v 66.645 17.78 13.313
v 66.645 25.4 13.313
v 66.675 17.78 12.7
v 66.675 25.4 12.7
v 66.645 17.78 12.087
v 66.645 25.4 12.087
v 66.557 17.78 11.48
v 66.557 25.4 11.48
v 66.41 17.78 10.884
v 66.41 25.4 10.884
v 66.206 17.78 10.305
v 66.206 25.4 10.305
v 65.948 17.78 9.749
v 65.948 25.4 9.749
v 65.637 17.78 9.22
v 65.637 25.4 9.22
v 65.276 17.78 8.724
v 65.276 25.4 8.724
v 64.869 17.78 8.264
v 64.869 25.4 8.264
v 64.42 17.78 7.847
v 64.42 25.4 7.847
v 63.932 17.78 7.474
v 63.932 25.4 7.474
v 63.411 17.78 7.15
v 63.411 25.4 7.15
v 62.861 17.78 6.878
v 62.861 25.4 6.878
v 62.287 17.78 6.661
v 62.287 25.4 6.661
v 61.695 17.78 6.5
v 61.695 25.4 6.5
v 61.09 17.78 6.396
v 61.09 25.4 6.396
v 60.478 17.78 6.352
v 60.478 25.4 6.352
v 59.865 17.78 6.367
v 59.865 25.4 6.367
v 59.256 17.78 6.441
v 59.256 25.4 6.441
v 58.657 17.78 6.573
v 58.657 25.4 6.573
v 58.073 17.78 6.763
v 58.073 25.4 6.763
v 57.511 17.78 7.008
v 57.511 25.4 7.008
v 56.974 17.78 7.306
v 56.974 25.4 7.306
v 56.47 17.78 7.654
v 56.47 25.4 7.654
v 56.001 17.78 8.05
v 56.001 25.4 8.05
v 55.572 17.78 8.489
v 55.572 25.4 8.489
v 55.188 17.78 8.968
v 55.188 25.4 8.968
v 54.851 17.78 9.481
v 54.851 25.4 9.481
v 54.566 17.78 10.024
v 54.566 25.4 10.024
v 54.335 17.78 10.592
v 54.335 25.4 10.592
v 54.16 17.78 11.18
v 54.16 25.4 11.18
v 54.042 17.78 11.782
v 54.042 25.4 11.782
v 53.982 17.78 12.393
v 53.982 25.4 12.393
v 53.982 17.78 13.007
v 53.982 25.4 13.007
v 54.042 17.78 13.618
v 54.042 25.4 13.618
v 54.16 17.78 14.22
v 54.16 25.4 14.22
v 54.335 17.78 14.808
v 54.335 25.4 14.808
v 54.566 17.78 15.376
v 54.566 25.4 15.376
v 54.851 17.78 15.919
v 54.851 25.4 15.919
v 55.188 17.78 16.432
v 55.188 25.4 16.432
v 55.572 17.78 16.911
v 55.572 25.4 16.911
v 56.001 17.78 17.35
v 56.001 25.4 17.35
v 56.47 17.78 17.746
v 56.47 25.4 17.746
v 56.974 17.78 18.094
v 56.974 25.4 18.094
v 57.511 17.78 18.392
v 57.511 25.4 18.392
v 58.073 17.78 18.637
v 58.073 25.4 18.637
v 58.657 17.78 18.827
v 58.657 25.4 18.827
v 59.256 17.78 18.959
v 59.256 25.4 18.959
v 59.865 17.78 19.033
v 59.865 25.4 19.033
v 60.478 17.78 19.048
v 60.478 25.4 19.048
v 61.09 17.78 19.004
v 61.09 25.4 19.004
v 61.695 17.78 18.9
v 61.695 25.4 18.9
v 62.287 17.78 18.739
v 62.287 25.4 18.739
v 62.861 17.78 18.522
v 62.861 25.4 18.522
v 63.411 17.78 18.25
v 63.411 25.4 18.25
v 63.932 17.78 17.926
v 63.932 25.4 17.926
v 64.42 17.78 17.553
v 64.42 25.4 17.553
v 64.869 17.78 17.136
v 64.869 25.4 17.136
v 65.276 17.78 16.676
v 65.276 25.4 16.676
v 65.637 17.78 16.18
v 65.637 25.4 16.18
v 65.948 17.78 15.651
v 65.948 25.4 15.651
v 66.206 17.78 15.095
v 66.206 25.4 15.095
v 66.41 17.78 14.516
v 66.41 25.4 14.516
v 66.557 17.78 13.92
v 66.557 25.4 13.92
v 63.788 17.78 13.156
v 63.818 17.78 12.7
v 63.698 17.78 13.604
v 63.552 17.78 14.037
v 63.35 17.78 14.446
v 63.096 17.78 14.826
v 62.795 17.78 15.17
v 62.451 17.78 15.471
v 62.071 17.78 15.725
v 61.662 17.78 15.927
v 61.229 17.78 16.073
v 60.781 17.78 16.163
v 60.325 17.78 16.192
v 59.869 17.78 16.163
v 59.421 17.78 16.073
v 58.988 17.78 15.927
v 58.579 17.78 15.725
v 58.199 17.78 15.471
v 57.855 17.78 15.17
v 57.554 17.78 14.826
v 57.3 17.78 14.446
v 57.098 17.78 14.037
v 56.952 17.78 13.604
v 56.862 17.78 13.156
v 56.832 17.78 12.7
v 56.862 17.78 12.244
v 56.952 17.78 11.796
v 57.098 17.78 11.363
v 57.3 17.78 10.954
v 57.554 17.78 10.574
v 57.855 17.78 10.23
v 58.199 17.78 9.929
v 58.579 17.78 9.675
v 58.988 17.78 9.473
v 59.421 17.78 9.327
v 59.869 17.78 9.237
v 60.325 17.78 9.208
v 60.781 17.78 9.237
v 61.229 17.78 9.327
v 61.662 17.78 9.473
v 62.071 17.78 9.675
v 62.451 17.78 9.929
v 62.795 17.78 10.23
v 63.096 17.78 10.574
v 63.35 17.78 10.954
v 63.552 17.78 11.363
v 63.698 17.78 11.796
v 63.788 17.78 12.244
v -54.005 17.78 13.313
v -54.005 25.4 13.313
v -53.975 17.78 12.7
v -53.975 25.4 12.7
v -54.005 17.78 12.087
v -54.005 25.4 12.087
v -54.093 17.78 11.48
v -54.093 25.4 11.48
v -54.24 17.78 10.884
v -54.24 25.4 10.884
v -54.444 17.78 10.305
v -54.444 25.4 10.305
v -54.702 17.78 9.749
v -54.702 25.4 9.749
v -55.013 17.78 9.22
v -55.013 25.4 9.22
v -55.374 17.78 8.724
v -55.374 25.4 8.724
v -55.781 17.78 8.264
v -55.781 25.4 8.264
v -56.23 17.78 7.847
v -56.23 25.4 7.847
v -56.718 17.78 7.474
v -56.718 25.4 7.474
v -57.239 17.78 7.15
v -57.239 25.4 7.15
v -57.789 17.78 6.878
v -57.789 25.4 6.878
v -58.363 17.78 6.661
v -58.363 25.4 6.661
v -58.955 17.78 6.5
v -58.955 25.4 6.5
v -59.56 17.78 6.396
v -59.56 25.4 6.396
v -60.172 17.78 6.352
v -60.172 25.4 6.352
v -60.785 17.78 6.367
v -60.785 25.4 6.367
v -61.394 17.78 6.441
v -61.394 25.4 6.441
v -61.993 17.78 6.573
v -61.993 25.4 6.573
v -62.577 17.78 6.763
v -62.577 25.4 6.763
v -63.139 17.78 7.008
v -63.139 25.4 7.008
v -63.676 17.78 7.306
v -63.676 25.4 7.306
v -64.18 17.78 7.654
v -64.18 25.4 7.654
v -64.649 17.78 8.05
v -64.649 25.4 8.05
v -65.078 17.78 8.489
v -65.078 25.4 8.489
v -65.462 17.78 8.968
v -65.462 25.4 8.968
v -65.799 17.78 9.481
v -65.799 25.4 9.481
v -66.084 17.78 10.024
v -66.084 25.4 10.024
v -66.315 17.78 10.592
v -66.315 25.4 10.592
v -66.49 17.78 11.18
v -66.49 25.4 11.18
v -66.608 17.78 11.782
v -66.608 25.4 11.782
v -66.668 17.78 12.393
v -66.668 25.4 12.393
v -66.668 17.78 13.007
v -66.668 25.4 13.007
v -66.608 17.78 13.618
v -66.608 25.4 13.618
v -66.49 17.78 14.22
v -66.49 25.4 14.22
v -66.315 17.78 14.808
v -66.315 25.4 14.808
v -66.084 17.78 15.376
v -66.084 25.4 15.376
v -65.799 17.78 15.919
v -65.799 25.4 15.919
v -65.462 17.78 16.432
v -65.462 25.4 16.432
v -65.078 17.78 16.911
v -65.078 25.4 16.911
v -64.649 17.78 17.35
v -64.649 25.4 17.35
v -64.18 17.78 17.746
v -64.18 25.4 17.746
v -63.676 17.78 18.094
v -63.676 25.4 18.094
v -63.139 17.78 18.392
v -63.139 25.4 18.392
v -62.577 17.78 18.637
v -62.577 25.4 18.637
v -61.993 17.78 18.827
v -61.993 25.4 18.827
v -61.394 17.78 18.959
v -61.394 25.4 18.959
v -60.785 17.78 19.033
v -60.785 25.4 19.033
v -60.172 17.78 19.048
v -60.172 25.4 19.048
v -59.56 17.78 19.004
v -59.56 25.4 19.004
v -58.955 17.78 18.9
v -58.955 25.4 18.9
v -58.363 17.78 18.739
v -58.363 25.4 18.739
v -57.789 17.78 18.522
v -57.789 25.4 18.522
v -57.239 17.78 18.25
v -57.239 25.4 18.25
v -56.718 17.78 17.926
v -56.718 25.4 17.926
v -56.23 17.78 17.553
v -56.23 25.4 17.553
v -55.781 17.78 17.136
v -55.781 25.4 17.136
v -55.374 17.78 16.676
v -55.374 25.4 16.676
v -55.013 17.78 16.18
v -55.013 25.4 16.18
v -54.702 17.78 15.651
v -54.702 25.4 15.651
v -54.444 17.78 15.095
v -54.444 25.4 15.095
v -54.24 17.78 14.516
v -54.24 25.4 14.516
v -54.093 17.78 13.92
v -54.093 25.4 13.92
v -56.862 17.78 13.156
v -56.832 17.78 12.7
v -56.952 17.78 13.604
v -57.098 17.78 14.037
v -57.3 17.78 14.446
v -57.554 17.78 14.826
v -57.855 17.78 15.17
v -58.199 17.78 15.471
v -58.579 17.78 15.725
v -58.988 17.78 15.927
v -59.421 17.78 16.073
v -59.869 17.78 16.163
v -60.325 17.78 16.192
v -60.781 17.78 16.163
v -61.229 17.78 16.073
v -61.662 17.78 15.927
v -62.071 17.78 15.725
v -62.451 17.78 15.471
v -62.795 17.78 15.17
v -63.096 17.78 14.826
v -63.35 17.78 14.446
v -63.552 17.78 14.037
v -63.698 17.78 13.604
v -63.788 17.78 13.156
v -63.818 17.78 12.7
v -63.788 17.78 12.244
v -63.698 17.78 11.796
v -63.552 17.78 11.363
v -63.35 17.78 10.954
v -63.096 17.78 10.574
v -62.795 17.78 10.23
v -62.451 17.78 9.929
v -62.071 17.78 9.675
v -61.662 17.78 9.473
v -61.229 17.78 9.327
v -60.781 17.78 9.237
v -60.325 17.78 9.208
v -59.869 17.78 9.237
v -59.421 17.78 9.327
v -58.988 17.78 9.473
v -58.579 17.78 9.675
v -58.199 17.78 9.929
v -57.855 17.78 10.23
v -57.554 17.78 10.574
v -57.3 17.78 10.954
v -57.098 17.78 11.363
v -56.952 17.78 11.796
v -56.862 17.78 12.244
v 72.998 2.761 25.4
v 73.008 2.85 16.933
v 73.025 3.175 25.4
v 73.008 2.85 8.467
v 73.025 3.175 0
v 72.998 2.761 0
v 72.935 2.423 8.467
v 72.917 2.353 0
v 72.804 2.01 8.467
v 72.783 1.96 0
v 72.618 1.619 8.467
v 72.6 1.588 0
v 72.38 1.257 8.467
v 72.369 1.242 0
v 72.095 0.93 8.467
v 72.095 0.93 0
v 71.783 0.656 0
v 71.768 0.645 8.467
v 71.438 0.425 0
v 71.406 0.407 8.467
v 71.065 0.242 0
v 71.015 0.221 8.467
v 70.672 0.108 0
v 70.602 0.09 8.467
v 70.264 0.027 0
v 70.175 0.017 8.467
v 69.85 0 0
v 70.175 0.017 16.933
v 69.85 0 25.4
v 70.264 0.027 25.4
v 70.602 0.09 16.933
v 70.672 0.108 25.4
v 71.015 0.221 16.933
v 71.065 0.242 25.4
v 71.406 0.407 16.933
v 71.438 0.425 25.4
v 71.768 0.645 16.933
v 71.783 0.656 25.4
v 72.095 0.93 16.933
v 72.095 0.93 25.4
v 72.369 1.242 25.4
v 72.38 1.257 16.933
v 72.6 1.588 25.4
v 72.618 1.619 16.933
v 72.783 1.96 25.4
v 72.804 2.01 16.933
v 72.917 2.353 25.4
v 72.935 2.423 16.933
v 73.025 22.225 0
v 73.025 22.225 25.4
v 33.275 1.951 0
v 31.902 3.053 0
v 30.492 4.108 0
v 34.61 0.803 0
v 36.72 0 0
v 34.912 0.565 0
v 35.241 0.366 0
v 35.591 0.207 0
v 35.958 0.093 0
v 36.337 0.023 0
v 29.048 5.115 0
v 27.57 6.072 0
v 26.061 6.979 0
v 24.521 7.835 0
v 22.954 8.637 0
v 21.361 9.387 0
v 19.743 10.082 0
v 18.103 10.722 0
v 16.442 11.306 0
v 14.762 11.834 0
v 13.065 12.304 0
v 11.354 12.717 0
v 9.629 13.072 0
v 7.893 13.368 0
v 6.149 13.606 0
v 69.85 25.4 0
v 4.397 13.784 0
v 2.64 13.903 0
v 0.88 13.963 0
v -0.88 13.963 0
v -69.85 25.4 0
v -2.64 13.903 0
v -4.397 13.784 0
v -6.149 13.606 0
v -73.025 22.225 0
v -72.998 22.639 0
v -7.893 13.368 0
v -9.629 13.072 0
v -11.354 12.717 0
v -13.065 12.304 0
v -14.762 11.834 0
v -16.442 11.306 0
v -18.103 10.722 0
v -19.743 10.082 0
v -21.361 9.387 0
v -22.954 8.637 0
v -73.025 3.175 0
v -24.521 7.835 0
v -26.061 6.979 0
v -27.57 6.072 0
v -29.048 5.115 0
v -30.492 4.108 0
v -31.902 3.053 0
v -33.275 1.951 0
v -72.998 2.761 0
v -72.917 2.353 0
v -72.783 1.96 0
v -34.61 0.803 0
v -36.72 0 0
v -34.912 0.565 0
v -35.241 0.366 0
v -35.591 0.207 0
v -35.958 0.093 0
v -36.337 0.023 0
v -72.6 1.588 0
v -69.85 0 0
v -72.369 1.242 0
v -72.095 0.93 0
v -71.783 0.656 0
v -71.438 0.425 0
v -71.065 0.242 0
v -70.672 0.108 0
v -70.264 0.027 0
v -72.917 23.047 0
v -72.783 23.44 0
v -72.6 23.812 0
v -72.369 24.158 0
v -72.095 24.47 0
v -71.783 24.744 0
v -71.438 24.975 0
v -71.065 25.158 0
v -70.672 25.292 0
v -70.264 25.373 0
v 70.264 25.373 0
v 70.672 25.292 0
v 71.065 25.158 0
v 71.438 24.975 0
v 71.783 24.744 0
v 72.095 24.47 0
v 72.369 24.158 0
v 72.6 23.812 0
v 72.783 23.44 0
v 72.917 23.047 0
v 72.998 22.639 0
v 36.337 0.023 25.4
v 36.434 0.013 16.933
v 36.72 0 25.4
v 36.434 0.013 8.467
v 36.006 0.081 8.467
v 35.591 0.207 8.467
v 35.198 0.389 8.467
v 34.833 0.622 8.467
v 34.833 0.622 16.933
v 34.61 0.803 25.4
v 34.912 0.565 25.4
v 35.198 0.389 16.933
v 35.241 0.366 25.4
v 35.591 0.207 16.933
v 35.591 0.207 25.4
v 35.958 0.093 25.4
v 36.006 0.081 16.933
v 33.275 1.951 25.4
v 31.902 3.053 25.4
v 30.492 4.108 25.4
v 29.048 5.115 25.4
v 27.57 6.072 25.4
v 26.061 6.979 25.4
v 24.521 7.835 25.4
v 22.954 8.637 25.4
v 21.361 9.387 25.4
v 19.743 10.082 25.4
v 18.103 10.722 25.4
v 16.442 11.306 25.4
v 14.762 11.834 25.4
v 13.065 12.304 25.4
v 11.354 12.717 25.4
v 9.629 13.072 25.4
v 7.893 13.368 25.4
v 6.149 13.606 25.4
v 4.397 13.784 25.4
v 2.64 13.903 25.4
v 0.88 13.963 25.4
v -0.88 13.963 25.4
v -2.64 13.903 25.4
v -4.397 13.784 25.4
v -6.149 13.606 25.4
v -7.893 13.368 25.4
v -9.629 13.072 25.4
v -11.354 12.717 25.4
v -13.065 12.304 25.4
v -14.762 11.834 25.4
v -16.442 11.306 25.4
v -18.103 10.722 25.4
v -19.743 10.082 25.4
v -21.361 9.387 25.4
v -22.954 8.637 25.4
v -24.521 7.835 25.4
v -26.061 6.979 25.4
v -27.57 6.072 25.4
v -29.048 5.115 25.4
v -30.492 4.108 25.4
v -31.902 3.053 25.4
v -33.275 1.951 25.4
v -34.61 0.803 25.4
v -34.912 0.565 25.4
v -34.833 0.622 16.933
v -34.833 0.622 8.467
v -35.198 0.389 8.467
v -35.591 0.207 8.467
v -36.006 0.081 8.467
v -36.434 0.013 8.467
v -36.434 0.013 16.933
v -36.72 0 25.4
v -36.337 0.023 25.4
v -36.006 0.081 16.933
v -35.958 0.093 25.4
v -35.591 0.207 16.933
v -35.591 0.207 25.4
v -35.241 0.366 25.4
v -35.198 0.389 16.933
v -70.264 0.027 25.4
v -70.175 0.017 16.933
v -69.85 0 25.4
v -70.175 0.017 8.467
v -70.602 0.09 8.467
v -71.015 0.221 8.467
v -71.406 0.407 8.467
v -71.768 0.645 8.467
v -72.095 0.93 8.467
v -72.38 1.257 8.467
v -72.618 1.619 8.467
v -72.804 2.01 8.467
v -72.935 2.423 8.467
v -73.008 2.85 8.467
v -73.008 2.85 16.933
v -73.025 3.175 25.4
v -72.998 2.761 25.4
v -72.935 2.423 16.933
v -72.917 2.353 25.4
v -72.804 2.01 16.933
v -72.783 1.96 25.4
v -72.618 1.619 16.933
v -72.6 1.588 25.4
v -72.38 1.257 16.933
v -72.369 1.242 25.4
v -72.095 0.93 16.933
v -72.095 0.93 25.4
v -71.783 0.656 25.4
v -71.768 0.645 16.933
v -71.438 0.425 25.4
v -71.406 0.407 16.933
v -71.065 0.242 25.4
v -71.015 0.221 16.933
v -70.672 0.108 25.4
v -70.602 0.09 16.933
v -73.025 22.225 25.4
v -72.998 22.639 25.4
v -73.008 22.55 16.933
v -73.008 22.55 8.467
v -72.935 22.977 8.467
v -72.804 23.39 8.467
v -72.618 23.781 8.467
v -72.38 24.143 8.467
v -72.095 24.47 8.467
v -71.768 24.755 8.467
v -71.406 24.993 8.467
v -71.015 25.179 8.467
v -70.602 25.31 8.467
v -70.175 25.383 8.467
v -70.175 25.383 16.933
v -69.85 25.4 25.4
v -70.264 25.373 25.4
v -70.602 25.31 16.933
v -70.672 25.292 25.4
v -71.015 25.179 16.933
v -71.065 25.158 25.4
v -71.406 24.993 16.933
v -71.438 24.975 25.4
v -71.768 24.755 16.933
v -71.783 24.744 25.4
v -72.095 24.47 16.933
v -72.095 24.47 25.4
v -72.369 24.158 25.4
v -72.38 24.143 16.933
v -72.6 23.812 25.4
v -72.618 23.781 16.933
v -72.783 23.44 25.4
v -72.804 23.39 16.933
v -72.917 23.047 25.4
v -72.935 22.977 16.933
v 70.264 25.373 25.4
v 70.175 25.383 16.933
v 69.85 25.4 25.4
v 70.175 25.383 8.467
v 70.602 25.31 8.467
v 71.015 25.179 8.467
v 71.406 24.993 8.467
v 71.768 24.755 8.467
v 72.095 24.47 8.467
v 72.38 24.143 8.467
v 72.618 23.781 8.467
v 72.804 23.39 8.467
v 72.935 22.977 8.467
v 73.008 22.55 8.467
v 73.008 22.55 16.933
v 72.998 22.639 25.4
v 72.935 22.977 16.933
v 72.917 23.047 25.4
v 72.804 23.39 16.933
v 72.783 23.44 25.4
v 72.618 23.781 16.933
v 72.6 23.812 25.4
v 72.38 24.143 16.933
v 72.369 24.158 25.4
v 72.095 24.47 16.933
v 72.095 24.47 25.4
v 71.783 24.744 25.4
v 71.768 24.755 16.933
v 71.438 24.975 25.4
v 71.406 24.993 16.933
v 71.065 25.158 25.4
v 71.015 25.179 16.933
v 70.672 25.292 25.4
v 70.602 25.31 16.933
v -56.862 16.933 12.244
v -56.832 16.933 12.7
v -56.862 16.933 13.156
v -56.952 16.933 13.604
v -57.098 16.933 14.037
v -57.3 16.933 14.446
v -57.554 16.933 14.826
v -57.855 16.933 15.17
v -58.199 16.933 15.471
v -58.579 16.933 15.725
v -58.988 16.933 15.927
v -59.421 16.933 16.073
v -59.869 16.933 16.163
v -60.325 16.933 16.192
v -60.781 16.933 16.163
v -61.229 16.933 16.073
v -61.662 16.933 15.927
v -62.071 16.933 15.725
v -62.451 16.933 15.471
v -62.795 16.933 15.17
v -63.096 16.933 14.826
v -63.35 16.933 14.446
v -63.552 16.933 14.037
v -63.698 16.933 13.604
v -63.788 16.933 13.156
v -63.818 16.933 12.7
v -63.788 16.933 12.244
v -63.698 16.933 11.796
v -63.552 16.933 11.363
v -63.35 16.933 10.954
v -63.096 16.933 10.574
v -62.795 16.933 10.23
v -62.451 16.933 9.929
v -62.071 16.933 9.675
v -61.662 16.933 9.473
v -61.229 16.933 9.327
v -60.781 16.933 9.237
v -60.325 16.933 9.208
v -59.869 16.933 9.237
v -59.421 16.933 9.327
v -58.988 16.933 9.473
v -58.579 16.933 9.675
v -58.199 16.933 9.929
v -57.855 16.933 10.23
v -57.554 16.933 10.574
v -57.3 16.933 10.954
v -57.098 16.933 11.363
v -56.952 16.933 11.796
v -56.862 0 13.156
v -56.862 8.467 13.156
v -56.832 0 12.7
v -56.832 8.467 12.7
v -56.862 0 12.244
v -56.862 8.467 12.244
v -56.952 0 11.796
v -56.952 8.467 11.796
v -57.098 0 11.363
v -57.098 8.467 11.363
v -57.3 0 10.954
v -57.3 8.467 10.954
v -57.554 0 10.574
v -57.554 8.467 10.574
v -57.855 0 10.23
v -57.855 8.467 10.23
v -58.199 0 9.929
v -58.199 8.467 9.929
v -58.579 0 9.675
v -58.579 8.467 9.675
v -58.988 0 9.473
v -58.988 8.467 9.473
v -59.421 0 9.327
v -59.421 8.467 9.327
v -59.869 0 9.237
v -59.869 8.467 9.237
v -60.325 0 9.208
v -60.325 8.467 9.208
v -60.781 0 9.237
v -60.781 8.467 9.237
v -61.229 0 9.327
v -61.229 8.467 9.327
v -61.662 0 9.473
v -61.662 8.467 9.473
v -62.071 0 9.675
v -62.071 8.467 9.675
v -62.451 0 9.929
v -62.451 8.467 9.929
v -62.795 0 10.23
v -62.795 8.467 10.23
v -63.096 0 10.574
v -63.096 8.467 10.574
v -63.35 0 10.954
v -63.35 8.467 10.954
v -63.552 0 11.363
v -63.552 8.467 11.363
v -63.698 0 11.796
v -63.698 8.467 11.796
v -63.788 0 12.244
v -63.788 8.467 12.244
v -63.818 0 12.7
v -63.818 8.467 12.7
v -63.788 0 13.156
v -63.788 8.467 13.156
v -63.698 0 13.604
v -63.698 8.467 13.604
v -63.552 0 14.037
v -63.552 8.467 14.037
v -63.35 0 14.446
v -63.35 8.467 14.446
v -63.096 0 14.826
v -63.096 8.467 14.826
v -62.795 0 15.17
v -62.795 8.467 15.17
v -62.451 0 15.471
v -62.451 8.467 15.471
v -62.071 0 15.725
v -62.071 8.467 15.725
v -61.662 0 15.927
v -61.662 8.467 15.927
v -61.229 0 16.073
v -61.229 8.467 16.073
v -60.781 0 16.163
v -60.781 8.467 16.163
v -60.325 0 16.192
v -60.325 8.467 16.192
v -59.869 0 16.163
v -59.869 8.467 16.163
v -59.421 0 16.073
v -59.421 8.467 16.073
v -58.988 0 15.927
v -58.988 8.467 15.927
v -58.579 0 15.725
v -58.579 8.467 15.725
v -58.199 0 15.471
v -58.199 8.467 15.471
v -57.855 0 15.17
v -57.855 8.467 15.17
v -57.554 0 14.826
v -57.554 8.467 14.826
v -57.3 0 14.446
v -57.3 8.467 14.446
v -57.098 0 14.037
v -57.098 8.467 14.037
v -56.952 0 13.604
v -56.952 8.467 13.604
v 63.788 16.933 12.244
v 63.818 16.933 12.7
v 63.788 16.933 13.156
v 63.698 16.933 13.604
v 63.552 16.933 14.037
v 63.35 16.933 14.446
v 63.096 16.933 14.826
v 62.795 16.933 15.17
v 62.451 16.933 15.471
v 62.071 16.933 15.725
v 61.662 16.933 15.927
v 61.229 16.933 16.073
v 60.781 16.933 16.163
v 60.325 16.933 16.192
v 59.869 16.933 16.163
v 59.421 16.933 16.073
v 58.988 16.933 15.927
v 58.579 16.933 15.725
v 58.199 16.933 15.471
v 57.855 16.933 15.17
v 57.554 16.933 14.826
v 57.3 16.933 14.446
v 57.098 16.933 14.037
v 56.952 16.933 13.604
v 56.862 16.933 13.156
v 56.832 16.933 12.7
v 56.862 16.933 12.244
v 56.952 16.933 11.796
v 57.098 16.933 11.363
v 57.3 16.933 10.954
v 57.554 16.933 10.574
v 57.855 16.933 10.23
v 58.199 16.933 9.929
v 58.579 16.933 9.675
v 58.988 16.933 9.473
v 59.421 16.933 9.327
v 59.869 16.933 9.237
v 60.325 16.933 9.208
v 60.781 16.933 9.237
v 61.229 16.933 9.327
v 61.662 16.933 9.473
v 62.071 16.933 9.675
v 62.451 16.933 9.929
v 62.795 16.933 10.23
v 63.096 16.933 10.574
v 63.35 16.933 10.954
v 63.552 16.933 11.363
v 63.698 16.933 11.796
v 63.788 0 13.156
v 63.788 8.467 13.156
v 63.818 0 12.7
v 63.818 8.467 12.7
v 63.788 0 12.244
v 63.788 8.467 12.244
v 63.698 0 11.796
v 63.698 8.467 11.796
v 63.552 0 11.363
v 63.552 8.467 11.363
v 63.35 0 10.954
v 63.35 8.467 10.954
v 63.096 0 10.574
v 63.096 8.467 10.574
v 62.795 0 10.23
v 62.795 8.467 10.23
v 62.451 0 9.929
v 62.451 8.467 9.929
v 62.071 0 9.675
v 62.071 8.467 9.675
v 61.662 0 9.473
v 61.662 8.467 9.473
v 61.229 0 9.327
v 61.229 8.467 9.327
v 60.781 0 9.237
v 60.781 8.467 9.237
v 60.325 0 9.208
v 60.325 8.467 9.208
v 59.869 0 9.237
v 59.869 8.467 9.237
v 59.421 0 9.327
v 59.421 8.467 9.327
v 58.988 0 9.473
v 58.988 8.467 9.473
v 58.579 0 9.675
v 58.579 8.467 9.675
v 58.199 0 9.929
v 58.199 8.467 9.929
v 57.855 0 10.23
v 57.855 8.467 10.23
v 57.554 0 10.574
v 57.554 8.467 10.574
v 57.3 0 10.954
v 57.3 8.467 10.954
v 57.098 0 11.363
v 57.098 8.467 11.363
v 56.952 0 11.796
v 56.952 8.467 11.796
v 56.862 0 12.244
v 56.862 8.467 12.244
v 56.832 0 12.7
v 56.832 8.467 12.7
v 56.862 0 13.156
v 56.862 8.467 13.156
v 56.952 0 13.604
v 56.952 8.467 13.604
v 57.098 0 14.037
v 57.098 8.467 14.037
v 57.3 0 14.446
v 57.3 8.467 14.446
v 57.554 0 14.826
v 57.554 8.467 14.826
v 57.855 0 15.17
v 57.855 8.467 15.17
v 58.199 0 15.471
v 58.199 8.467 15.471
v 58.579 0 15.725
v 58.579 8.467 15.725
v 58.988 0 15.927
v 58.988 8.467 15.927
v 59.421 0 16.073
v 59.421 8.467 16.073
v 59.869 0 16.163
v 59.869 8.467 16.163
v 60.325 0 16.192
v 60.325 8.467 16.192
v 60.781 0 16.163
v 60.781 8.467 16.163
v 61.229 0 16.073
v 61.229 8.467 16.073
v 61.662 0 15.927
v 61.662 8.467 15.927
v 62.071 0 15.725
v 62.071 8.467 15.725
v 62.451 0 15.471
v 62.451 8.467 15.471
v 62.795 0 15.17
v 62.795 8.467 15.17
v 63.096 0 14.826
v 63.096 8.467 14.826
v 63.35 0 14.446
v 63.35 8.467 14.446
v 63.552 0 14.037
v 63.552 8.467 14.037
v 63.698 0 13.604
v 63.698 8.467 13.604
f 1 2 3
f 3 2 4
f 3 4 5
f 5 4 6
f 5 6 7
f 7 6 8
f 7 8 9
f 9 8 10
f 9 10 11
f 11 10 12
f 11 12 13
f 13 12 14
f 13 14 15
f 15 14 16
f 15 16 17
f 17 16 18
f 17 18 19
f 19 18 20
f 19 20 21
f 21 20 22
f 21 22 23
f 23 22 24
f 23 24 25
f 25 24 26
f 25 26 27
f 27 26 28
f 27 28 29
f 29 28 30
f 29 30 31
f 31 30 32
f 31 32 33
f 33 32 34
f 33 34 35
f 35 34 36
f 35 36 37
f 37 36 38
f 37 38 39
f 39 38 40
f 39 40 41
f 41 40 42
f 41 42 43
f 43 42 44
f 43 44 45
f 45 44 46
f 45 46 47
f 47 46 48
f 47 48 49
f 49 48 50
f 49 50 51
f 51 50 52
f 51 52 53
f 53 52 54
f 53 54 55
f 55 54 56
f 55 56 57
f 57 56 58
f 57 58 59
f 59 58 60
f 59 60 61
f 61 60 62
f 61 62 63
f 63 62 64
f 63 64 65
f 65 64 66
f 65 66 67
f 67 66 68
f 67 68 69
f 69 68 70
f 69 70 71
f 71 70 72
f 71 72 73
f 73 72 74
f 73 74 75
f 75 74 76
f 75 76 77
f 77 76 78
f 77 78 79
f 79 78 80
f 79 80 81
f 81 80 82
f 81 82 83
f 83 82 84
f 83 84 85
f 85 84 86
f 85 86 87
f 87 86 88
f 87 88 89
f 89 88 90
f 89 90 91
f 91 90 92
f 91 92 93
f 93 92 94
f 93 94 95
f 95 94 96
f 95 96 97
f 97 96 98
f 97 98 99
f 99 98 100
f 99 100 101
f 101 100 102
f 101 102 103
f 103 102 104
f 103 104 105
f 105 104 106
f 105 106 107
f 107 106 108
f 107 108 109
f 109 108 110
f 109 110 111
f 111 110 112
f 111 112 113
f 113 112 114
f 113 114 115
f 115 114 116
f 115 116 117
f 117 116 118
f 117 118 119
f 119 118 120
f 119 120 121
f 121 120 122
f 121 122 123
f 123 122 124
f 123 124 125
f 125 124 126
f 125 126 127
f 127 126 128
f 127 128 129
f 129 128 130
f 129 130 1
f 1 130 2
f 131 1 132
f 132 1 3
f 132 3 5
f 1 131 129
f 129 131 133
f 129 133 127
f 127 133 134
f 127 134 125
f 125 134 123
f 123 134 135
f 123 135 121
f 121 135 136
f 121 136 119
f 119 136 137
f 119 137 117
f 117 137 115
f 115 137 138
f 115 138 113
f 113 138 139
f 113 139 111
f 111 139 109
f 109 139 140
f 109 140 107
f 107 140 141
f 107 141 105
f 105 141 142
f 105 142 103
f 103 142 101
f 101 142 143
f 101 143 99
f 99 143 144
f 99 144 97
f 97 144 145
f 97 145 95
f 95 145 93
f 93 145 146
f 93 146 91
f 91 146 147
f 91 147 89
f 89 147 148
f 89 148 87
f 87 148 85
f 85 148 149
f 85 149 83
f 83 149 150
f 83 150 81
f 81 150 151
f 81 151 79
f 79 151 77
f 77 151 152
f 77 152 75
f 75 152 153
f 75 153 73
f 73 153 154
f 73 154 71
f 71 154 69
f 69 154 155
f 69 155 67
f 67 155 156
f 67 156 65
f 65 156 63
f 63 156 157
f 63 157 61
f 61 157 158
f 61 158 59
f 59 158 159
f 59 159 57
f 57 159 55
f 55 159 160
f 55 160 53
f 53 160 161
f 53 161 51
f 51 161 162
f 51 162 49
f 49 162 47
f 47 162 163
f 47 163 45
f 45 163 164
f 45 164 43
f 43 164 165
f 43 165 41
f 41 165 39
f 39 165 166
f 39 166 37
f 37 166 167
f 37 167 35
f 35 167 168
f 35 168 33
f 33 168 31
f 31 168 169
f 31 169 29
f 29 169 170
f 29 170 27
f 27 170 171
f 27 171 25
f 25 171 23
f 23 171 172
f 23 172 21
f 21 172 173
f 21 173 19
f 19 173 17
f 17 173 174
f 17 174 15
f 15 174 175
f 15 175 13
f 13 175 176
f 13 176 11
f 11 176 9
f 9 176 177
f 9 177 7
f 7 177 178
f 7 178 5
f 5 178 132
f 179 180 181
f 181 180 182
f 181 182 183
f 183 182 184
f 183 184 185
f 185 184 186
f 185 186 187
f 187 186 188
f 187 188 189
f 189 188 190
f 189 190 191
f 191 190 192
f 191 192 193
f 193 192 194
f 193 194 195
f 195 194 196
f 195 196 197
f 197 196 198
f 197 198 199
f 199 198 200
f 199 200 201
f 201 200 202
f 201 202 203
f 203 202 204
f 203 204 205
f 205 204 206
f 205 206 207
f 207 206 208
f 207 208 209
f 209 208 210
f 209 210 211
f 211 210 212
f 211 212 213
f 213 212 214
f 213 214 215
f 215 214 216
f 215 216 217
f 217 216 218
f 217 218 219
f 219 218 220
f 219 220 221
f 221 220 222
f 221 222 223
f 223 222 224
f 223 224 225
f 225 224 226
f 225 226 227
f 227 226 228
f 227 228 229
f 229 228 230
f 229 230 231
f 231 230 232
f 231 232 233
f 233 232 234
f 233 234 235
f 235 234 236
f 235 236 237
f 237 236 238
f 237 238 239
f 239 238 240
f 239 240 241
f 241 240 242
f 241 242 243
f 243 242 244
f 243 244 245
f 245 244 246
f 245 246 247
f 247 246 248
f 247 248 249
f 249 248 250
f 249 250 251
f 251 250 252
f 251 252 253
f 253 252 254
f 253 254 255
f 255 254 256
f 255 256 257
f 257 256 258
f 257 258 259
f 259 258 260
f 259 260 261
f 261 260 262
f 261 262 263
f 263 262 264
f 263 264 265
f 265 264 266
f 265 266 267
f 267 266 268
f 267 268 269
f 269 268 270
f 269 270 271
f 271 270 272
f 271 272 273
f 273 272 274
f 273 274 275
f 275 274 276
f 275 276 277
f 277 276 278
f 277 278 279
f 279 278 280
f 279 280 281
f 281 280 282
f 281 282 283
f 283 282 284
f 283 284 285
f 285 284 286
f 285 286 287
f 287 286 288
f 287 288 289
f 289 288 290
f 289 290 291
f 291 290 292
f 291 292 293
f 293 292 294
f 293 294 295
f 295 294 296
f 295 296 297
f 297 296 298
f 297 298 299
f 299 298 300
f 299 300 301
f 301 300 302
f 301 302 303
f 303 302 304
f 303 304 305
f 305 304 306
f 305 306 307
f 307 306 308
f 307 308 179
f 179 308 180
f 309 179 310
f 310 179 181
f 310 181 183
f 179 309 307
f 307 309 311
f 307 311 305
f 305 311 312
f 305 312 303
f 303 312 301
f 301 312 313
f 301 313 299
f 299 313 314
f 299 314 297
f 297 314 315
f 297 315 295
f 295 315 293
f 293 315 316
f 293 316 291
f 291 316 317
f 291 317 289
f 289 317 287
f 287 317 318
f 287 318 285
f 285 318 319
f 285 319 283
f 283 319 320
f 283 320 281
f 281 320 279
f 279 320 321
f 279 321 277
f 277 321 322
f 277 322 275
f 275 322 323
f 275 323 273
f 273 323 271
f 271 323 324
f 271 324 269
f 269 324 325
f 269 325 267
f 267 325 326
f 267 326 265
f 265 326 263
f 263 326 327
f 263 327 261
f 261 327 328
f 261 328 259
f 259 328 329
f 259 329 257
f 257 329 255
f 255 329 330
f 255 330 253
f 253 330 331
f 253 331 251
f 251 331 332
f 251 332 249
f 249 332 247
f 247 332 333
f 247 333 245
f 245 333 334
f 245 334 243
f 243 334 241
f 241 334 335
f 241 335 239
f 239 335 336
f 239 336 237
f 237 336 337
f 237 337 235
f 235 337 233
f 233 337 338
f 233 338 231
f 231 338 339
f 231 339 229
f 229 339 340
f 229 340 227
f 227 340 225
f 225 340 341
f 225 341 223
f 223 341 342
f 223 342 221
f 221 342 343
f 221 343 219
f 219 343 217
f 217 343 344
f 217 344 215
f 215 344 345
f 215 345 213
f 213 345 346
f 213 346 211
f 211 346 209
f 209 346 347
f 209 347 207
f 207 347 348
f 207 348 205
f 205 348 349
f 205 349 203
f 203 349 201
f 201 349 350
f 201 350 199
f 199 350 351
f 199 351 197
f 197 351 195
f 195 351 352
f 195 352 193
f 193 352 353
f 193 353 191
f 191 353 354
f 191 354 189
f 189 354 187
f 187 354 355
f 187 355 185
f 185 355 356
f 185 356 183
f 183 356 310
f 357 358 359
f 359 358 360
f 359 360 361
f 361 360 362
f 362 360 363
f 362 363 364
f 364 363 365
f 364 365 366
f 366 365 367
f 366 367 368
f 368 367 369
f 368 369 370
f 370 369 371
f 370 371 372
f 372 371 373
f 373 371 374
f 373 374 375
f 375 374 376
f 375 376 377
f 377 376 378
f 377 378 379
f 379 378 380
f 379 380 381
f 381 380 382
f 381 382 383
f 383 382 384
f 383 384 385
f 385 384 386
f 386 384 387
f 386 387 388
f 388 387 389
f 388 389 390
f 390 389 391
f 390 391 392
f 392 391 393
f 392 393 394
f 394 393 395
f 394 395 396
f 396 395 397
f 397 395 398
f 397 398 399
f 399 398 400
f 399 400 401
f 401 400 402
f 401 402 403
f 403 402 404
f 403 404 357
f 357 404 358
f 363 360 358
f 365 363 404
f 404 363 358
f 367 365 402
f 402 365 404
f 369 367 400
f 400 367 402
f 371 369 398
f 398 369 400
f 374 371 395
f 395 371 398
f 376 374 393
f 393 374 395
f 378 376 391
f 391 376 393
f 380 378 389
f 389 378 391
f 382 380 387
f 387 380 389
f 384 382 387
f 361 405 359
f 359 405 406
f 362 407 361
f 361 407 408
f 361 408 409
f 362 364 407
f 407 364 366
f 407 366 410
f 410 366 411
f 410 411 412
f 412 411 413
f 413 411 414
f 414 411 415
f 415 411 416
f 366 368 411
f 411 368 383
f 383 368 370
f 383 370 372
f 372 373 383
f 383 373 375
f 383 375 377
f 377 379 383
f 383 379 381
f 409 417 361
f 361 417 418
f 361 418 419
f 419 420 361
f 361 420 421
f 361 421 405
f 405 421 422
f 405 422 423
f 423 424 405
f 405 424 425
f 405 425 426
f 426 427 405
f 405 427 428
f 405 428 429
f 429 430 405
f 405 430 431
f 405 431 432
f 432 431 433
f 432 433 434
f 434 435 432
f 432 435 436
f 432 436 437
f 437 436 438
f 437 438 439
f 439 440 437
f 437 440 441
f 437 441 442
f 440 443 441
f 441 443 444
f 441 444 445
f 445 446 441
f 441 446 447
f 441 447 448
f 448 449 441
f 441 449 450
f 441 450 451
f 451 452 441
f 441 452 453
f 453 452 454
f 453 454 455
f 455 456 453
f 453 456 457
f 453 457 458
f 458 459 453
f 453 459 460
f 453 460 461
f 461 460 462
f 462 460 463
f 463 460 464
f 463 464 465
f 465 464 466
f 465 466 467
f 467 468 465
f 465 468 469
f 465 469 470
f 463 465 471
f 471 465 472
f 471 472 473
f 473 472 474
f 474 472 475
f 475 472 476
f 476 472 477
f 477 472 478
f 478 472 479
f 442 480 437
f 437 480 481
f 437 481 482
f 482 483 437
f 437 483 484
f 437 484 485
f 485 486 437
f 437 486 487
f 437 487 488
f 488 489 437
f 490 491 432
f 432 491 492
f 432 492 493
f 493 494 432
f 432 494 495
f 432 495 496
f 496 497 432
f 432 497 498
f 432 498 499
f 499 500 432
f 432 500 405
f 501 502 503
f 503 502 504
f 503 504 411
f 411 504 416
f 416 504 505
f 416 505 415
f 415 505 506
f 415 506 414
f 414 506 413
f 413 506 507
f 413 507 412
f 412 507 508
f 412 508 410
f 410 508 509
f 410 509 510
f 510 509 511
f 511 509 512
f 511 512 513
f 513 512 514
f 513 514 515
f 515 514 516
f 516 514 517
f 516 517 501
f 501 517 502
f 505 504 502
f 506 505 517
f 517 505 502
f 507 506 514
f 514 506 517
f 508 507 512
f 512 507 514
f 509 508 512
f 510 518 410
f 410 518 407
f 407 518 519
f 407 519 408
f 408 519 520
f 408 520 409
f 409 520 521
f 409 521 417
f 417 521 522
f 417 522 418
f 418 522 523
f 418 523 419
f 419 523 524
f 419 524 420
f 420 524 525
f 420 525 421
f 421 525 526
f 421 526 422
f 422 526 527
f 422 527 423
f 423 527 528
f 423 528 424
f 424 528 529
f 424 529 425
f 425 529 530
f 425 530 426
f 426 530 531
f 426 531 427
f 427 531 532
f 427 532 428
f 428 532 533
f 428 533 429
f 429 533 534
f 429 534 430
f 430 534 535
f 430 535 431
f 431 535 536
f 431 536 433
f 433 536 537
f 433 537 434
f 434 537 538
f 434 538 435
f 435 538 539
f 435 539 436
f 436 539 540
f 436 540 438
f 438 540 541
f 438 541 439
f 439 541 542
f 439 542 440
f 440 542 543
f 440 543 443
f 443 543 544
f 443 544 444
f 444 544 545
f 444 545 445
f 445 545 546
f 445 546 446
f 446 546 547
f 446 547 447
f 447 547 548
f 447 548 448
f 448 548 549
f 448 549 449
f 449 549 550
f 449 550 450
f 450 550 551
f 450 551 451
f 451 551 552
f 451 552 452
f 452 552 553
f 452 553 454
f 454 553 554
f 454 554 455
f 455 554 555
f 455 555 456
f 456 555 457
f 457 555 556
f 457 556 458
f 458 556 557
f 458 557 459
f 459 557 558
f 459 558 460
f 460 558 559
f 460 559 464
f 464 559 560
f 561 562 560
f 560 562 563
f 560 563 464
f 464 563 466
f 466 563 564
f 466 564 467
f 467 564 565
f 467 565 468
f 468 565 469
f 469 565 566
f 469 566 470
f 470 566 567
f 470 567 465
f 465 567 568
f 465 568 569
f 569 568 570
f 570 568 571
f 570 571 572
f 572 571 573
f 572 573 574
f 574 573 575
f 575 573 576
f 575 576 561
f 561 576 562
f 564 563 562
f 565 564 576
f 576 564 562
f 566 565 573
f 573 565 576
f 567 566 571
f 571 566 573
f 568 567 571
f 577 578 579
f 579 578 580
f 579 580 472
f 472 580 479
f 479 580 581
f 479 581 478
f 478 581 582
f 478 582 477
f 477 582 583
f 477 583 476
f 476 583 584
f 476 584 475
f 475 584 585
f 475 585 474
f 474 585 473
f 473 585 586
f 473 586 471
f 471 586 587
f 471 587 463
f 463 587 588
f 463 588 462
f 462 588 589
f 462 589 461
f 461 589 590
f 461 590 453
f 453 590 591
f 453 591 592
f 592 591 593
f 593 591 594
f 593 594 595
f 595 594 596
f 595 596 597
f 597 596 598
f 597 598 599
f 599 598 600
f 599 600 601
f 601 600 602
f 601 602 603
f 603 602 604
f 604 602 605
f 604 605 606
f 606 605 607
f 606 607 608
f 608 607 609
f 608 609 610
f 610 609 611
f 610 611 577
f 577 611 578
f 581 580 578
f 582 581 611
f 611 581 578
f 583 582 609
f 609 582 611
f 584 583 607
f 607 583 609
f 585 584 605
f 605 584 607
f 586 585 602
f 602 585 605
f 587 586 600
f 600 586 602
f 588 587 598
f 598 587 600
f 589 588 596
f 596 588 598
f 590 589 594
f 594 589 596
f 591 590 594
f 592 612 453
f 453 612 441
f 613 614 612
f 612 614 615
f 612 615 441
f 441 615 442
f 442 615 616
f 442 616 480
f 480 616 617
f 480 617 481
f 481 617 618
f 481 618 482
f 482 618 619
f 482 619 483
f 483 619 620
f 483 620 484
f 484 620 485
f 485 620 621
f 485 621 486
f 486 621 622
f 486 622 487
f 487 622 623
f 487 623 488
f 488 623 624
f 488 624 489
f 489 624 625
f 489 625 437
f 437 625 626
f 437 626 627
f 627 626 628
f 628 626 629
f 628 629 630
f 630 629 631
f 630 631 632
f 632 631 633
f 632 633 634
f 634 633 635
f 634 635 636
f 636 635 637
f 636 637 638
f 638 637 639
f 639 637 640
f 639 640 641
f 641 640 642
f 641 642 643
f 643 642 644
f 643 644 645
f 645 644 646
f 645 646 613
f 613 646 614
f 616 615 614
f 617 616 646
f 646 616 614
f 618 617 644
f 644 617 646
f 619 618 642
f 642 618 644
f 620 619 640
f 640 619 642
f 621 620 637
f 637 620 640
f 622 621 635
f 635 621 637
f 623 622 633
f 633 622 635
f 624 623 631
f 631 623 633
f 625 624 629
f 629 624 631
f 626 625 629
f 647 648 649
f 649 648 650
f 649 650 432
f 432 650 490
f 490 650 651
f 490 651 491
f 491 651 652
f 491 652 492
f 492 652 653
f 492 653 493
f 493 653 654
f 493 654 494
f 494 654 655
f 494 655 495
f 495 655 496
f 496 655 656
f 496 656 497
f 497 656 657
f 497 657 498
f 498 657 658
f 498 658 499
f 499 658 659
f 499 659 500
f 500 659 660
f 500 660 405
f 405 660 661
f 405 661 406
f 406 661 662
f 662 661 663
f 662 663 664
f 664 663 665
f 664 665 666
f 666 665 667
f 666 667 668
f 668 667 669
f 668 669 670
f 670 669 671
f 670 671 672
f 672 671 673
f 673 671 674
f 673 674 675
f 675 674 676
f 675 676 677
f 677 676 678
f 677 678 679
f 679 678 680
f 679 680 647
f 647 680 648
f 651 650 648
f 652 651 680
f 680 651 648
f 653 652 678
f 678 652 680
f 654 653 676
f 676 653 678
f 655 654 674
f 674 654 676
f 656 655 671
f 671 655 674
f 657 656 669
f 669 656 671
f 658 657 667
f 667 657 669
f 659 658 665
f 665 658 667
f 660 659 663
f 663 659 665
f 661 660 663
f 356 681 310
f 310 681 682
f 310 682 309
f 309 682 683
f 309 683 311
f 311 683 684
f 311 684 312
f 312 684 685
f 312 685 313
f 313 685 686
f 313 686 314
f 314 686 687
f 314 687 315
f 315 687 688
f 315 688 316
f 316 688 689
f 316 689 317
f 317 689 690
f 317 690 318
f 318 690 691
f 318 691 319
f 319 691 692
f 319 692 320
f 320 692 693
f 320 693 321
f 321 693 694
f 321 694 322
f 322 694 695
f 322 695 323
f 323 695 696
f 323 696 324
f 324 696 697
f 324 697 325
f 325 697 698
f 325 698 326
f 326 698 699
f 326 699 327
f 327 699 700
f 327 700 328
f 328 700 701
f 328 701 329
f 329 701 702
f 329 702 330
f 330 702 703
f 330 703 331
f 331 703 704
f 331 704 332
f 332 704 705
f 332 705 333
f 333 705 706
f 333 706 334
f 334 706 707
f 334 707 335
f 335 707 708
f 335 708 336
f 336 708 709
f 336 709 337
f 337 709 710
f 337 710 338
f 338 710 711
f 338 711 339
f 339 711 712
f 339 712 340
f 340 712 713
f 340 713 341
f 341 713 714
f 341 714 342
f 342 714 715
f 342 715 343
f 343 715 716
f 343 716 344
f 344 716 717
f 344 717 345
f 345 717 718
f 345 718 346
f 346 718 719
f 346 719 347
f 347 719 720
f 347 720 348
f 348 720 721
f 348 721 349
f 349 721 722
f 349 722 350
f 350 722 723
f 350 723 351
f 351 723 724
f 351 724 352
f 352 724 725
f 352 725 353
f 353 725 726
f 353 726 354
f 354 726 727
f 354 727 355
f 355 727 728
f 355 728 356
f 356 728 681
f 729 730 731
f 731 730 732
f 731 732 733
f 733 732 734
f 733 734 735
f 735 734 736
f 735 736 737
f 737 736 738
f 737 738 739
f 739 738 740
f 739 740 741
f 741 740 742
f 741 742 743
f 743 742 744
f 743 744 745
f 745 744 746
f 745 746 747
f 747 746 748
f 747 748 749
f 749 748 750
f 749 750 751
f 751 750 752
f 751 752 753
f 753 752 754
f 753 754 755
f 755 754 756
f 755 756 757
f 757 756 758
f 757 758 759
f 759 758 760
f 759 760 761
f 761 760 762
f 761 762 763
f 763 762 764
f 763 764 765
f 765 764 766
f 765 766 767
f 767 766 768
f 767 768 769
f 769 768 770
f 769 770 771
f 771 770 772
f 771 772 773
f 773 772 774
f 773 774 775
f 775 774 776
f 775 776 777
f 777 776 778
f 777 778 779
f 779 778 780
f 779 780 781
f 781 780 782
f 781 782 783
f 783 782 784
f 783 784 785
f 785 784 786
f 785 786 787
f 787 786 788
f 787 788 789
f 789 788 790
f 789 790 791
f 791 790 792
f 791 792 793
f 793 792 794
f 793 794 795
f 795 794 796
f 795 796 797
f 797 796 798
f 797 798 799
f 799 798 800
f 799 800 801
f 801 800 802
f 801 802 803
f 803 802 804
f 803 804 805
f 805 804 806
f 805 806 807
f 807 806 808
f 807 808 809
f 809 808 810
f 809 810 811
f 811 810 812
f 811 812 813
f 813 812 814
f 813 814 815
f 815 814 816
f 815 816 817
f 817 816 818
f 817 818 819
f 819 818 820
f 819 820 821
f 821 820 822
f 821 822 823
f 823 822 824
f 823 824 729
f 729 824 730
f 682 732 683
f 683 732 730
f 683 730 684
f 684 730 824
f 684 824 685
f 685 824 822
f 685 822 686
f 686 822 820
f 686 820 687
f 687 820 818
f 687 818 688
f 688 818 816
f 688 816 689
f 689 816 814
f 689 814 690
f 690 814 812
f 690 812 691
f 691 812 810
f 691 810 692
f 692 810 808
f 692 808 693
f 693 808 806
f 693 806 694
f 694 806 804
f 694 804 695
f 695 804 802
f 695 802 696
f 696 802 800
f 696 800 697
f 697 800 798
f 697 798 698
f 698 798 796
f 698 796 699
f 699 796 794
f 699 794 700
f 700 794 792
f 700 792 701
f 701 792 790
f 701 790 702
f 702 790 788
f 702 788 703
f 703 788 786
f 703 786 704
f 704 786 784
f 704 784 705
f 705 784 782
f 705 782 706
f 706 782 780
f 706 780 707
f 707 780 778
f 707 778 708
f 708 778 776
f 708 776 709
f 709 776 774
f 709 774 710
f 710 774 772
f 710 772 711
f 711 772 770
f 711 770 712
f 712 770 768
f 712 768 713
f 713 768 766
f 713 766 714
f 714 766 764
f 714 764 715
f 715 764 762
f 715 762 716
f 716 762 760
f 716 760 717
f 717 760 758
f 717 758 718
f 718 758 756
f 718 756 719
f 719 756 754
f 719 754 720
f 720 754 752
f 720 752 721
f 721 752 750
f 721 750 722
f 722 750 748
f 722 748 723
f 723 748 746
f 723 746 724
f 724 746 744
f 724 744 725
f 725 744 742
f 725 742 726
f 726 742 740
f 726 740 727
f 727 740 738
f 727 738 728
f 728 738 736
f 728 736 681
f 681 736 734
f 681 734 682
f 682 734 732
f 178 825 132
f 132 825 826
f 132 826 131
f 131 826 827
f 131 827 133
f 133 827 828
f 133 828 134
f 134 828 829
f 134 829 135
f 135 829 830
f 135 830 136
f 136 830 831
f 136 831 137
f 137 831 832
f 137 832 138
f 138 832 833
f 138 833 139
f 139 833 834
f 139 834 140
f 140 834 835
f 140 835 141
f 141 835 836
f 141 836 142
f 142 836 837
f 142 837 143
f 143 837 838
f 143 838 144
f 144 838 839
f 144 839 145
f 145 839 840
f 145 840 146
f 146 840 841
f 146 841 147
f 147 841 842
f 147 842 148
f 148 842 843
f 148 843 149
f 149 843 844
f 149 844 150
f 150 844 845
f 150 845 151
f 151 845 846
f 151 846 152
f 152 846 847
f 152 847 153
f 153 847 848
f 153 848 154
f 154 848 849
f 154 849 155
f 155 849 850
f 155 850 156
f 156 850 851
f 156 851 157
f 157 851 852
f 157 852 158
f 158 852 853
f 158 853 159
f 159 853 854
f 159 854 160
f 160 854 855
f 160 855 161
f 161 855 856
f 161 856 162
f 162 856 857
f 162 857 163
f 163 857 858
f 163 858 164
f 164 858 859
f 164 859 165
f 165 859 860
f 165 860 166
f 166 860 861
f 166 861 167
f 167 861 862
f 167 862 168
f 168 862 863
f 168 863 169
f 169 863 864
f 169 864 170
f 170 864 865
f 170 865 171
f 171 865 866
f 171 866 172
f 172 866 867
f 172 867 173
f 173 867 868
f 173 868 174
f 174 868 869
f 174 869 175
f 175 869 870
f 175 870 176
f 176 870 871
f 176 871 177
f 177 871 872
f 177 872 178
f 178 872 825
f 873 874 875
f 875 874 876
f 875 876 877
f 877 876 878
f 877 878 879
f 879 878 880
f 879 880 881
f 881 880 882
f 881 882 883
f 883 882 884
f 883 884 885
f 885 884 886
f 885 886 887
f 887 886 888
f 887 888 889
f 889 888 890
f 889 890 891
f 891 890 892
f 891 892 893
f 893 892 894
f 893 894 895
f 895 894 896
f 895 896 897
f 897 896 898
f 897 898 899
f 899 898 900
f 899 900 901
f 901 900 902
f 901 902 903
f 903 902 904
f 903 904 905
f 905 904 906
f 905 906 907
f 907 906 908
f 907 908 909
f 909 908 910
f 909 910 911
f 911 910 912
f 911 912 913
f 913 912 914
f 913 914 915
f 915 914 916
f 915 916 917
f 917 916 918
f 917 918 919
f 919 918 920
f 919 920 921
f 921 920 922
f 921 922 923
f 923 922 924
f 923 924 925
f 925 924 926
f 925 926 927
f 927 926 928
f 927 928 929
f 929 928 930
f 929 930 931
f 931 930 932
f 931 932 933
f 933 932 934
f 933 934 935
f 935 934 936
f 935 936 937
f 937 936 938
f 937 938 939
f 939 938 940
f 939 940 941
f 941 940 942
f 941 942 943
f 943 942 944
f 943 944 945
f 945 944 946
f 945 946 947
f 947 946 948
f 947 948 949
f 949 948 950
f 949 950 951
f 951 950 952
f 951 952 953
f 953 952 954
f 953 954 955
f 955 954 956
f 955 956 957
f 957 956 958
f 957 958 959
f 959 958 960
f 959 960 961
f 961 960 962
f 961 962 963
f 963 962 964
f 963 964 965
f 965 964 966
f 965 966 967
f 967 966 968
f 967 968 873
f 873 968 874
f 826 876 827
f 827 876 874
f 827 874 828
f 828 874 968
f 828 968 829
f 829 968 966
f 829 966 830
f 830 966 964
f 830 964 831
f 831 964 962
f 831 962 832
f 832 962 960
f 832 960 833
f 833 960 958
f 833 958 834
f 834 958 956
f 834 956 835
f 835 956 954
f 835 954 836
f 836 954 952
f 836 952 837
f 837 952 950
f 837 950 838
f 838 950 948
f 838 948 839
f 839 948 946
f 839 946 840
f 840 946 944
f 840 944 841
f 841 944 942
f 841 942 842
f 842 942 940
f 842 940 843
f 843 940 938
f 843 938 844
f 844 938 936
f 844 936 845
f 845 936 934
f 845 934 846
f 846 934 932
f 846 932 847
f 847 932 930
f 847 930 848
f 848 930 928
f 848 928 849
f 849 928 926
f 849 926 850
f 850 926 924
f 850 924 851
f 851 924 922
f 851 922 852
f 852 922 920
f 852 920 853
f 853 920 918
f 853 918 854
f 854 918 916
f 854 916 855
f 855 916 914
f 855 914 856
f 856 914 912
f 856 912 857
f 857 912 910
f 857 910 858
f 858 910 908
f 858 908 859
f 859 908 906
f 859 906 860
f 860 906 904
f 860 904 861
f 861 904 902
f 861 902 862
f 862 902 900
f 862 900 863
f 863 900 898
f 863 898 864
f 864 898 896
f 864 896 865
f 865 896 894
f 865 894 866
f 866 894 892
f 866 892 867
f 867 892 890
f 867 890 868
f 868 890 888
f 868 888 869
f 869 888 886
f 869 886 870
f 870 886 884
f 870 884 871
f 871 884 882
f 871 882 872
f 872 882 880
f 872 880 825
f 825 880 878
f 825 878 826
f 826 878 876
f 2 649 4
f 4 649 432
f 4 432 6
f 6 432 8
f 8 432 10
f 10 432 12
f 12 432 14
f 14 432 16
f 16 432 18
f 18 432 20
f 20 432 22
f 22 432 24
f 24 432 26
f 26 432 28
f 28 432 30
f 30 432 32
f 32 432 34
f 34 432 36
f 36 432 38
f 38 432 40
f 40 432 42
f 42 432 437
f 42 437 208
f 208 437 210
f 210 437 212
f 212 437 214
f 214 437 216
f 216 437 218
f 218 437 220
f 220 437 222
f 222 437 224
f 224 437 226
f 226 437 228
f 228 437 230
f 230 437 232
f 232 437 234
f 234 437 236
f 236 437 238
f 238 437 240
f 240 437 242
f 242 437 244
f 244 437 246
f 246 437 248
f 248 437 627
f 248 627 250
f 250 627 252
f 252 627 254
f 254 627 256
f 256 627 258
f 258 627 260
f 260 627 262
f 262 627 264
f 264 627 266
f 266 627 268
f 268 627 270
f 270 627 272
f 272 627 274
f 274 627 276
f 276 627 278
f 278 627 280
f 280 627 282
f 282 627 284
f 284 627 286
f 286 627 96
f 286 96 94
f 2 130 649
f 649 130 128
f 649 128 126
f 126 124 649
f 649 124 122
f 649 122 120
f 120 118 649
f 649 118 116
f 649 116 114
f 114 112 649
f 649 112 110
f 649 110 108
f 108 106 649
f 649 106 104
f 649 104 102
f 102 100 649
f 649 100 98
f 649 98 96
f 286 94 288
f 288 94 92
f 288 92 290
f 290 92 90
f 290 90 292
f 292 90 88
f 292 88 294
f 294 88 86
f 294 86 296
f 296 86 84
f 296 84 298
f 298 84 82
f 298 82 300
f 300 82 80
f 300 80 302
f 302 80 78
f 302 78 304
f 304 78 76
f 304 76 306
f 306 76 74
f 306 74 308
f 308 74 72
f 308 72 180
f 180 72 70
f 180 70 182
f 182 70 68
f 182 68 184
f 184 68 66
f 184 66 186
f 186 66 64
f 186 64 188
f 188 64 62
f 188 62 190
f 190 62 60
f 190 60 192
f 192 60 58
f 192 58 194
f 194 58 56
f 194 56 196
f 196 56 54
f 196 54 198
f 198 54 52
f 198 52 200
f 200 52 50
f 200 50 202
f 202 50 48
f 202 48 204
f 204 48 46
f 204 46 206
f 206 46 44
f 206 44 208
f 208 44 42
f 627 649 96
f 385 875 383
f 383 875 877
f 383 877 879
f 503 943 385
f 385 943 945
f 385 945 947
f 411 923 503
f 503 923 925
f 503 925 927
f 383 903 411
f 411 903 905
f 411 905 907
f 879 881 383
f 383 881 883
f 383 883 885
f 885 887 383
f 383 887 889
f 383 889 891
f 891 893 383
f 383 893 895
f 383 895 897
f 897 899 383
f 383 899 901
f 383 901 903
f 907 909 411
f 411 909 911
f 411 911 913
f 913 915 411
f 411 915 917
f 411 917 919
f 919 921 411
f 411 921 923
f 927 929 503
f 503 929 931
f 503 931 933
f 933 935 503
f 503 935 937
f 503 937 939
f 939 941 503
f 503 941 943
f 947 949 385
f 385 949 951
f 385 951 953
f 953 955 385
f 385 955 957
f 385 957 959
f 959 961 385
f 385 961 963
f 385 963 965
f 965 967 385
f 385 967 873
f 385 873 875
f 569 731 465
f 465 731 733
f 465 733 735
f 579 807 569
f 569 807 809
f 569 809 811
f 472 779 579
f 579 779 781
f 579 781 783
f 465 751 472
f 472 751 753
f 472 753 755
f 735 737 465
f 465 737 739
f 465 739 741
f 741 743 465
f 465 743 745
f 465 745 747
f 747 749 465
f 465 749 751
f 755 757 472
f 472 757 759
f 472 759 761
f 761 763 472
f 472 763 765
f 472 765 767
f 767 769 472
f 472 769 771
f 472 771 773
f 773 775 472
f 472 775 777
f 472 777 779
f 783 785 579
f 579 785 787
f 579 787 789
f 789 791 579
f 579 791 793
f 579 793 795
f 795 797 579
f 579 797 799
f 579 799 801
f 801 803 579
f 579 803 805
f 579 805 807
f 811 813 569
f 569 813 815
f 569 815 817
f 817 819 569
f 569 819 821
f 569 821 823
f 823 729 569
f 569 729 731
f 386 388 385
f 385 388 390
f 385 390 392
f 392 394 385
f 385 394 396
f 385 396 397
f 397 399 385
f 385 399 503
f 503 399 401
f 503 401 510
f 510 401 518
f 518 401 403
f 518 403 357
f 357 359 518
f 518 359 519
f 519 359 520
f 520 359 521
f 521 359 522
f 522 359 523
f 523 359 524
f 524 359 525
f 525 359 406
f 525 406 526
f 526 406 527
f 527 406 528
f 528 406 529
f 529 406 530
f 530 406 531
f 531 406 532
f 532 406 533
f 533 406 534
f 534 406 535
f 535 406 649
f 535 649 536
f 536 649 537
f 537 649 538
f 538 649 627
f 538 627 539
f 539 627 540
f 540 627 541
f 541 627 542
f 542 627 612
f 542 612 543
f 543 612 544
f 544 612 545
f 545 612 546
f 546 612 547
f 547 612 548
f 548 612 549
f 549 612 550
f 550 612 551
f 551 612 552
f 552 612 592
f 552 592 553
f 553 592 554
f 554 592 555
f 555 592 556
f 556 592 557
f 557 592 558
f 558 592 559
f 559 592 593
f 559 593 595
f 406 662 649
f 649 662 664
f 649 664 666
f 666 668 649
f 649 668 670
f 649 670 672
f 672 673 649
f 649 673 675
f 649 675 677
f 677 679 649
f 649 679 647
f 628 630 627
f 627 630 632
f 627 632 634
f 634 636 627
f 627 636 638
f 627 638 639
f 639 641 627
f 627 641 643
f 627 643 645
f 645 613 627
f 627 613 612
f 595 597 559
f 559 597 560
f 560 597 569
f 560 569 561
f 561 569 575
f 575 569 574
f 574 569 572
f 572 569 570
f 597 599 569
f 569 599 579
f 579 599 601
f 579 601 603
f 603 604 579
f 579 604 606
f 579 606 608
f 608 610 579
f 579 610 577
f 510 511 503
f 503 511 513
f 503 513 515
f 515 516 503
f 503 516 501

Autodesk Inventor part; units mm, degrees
ref_plane "YZ Plane" through (0, 0, 0) normal (1, 0, 0) x (0, 1, 0)
ref_plane "XZ Plane" through (0, 0, 0) normal (0, 1, 0) x (-1, 0, 0)
ref_plane "XY Plane" through (0, 0, 0) normal (0, 0, 1) x (1, 0, 0)
sketch "Sketch1" plane through (0, 0, 0) normal (0, 0, 1) x (1, 0, 0)
  line L0 (-73.025, 0) -> (-73.025, 25.4)
  line L1 (-73.025, 25.4) -> (73.025, 25.4)
  line L2 (73.025, 25.4) -> (73.025, 0)
  line L3 (73.025, 0) -> (35.4919, 0)
  line L4 (-73.025, 0) -> (-35.4919, 0)
  arc A0 (35.4919, 0) -> (-35.4919, 0) centre (0, -38.1) ccw
  point P0 (0, 0)
  dimension "d1" = 104.14
  dimension "d2" = 38.1
  dimension "d3" = 146.05
  dimension "d4" = 25.4
extrude "Extrusion1" add sketch "Sketch1" along normal blind 25.4
sketch "Sketch2" plane through (-73.025, 25.4, 0) normal (0, 1, 0) x (1, 0, 0)
  line L0 (0, 0) -> (146.05, 0) construction
  line L1 (0, 0) -> (0, -25.4) construction
  line L2 (146.05, -25.4) -> (0, -25.4) construction
  line L3 (146.05, 0) -> (146.05, -25.4) construction
  circle A0 centre (12.7, -12.7) radius 3.4925
  circle A1 centre (133.35, -12.7) radius 3.4925
  point P0 (73.025, 0)
  dimension "d7" = 6.985
  dimension "d8" = 6.985
  dimension "d9" = 12.7
  dimension "d10" = 12.7
extrude "Extrusion2" cut sketch "Sketch2" against normal through all
fillet "Fillet1" radius 3.175 6 edges at (73.025, 25.4, 12.7) (-73.025, 25.4, 12.7) (-73.025, 0, 12.7) (-35.4919, 0, 12.7) (35.4919, 0, 12.7) (73.025, 0, 12.7)
sketch "Sketch3" plane through (-69.85, 25.4, 0) normal (0, 1, 0) x (1, 0, 0)
  line L0 (0, -25.4) -> (0, 0) construction
  line L1 (139.7, -25.4) -> (0, -25.4) construction
  line L2 (139.7, 0) -> (139.7, -25.4) construction
  line L3 (0, 0) -> (139.7, 0) construction
  circle A0 centre (9.525, -12.7) radius 3.4925 construction
  circle A1 centre (130.175, -12.7) radius 3.4925 construction
  circle A2 centre (9.525, -12.7) radius 3.4925 projected
  circle A3 centre (9.525, -12.7) radius 6.35
  circle A4 centre (130.175, -12.7) radius 6.35
  point P0 (69.85, 0)
  dimension "d14" = 12.7
  dimension "d15" = 12.7
extrude "Extrusion3" cut sketch "Sketch3" against normal blind 7.62
properties part number "Top" material "ABS Plastic"
